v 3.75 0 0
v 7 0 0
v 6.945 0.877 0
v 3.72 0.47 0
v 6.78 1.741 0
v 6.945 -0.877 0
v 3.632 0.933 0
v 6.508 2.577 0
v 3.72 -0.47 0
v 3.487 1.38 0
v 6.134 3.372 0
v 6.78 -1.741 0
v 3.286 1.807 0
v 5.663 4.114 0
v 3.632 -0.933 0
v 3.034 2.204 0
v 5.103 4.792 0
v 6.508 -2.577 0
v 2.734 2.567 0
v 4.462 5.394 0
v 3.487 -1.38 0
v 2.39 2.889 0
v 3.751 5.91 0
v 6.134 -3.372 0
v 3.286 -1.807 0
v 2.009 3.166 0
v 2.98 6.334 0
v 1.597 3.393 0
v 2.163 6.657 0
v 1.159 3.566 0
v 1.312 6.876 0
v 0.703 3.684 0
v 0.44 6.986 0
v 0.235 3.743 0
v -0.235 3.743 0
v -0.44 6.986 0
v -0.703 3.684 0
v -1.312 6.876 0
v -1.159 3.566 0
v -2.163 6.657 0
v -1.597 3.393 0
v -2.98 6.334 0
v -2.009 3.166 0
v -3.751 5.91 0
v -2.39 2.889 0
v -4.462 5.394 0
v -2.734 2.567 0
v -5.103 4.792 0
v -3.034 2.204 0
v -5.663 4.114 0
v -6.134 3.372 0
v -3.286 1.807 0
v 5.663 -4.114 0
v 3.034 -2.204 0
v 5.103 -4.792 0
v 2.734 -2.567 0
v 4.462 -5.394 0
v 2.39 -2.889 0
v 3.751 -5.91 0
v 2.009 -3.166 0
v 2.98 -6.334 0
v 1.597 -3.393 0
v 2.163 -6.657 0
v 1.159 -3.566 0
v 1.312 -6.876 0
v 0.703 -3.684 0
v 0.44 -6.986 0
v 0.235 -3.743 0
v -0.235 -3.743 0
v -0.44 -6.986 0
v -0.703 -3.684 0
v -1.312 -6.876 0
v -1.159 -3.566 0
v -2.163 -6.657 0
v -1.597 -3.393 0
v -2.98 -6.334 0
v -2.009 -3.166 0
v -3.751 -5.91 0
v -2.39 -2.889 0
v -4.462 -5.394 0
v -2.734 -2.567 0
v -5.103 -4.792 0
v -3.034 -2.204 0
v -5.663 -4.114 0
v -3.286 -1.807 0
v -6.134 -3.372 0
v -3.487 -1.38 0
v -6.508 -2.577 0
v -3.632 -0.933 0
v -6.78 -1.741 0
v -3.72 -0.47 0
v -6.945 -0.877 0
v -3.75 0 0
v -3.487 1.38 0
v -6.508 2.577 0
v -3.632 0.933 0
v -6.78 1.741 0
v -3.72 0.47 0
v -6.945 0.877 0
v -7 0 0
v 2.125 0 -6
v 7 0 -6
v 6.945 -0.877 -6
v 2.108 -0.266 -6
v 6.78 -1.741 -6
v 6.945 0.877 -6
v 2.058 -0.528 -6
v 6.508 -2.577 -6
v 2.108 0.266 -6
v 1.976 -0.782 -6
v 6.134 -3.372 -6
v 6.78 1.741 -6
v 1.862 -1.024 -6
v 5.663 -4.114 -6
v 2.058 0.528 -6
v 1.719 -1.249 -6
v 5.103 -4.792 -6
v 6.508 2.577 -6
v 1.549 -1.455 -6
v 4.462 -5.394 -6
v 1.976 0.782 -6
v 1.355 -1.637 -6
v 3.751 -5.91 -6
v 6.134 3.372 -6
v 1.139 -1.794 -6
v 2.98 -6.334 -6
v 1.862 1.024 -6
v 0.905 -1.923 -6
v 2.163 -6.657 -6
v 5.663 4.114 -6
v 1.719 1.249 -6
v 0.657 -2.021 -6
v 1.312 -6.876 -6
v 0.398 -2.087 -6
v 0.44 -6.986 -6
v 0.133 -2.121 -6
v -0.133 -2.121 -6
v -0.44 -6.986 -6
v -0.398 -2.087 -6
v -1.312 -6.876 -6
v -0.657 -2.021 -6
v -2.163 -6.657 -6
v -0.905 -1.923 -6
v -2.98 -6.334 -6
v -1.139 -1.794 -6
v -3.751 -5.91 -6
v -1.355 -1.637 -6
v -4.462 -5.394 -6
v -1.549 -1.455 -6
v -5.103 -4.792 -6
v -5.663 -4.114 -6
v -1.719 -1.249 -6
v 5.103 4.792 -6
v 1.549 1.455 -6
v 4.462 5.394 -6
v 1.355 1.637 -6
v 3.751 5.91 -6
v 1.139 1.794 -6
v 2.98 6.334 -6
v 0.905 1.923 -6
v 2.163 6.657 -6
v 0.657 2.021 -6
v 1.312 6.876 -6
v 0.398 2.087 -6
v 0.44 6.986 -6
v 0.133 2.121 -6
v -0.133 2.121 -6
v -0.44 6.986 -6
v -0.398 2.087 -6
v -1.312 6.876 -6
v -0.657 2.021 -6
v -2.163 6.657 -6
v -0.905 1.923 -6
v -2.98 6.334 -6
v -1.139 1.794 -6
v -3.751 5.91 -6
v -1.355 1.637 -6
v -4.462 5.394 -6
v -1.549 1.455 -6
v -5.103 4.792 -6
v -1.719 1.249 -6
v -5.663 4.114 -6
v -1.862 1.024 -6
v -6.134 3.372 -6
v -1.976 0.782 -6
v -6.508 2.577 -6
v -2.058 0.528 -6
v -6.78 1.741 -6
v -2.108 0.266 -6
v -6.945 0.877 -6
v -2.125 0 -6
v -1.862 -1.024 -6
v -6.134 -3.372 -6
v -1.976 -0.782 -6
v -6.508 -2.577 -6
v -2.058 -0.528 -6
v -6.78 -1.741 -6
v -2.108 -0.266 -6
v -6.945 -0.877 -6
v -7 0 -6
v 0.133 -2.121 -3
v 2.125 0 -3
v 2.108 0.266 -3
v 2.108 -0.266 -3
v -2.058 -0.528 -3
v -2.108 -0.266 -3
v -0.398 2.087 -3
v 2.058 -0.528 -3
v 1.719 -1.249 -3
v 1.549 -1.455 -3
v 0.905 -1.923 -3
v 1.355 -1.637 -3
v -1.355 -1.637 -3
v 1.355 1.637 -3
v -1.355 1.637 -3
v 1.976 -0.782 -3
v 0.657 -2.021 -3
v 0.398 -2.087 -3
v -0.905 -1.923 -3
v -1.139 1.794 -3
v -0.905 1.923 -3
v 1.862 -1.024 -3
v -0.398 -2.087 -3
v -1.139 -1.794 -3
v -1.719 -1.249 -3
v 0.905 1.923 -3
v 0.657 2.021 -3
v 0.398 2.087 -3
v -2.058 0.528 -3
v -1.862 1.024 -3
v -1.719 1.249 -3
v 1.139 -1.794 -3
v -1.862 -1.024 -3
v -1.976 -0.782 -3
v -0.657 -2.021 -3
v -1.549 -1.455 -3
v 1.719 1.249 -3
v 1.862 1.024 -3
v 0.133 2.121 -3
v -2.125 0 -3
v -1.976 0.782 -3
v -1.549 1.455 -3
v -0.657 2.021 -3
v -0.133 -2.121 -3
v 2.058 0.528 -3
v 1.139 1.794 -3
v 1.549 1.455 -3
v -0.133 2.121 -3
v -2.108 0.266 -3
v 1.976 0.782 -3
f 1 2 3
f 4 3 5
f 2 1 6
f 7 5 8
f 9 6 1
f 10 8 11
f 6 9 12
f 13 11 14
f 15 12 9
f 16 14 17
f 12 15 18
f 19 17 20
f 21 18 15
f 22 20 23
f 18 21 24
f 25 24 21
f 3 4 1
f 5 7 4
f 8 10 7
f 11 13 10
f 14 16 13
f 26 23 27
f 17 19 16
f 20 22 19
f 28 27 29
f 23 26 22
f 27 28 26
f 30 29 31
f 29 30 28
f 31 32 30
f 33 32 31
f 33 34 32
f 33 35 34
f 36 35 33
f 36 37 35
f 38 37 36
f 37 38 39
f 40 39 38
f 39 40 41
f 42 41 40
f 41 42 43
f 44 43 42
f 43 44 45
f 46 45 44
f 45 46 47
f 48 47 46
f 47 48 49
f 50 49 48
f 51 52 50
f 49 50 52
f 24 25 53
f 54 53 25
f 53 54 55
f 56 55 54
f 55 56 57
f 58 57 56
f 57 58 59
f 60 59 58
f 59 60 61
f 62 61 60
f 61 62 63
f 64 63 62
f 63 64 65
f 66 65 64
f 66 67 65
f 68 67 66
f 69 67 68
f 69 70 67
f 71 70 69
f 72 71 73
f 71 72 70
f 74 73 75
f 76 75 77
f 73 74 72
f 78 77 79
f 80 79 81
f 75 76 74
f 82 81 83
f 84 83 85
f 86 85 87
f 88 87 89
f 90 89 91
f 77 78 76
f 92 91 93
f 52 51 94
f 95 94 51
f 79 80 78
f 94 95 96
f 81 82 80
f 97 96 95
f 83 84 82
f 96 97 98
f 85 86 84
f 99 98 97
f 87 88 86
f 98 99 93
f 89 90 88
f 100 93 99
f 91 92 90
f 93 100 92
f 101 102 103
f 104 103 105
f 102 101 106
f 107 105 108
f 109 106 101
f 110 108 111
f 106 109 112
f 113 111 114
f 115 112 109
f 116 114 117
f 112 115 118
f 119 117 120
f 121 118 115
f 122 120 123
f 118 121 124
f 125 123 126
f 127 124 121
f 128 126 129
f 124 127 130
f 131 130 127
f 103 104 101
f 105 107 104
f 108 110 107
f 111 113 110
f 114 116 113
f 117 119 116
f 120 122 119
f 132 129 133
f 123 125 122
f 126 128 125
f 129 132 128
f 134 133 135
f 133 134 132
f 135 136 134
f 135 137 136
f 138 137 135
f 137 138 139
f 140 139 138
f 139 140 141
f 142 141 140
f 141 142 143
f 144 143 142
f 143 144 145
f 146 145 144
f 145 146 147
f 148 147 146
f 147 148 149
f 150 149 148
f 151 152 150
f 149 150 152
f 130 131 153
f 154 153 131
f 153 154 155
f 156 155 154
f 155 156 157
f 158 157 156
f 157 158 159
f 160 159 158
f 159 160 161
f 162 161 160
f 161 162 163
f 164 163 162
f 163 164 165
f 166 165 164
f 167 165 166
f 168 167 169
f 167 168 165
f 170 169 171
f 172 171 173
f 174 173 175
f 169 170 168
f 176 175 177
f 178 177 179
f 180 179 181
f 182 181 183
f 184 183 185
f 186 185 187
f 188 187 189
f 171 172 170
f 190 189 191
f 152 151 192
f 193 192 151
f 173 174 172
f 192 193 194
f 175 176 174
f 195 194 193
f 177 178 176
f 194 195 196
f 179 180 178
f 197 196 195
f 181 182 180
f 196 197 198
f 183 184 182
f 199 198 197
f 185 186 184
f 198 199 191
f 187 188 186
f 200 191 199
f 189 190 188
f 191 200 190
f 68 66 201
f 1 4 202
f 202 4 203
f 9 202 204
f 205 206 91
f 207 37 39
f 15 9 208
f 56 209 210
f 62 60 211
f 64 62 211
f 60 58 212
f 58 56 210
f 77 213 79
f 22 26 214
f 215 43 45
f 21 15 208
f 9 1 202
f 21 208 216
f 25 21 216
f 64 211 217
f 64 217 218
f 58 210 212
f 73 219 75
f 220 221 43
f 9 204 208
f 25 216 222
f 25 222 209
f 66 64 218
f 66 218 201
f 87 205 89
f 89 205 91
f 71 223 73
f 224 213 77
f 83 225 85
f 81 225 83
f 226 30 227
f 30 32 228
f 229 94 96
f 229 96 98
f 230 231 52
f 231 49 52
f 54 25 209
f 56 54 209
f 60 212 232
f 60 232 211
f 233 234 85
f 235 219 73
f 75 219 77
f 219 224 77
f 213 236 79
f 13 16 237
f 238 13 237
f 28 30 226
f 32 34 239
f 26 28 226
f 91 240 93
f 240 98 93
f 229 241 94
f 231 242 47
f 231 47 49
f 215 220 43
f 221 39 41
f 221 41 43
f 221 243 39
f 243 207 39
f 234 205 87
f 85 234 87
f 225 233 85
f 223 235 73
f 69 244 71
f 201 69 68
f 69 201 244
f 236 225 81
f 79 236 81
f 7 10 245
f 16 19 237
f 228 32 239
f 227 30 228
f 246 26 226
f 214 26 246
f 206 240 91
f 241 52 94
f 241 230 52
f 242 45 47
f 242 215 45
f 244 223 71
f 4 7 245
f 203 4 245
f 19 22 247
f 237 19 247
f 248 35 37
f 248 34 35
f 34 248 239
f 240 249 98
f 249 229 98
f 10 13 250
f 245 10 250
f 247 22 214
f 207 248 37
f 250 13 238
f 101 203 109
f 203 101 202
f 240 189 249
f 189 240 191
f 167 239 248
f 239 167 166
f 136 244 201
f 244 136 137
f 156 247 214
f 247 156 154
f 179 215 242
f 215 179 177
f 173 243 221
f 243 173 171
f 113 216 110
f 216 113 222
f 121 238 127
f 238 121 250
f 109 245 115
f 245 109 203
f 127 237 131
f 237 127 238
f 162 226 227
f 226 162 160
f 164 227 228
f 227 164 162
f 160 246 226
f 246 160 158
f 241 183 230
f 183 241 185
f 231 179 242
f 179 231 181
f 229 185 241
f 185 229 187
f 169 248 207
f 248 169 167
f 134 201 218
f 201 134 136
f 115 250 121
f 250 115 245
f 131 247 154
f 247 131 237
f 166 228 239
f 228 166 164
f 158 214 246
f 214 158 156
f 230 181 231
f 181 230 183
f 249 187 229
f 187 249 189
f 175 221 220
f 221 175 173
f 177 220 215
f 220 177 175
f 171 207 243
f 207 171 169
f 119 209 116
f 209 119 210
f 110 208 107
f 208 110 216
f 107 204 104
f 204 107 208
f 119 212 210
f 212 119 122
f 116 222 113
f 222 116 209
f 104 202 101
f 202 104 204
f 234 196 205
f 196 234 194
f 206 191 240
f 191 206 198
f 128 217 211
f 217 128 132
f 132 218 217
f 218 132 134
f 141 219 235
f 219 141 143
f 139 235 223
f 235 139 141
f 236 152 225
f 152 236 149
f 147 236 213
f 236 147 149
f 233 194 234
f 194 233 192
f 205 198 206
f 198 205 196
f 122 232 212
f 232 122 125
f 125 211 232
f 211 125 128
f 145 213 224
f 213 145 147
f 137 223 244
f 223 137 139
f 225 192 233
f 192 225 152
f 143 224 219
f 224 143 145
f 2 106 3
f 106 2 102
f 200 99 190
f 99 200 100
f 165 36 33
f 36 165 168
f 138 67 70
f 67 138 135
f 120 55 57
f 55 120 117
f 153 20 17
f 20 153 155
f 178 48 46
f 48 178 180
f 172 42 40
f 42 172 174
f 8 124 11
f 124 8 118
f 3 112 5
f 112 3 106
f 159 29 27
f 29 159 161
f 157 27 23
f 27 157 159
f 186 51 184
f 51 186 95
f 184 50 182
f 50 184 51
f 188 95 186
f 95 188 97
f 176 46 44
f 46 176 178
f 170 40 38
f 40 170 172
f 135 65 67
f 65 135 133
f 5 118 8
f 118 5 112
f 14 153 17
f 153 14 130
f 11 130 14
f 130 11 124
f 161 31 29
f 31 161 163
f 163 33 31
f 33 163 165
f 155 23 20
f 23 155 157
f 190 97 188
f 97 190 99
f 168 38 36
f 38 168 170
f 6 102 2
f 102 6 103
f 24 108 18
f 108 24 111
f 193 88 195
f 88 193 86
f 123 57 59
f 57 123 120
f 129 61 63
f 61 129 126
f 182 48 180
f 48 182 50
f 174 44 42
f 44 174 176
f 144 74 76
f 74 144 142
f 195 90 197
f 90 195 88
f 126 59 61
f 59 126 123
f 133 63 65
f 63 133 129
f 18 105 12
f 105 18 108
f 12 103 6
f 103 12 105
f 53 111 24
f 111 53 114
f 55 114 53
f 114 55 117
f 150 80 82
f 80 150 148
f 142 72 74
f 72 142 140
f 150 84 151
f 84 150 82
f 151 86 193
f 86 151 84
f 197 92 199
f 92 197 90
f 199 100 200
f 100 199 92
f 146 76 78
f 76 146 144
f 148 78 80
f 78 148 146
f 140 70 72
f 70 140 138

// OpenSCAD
$fn = 50;


difference() {
	union() {
		translate(v = [0, 0, -6.0000000000]) {
			cylinder(h = 6, r = 7.0000000000);
		}
	}
	union() {
		translate(v = [0, 0, 0]) {
			rotate(a = [0, 0, 0]) {
				difference() {
					union() {
						#translate(v = [0, 0, -6.0000000000]) {
							cylinder(h = 6, r = 2.0000000000);
						}
						#translate(v = [0, 0, -3]) {
							cylinder(h = 3, r = 7.0000000000, r1 = 2.1250000000, r2 = 3.7500000000);
						}
						#translate(v = [0, 0, -6.0000000000]) {
							cylinder(h = 6, r = 2.1250000000);
						}
						#translate(v = [0, 0, -6.0000000000]) {
							cylinder(h = 6, r = 2.0000000000);
						}
					}
					union();
				}
			}
		}
	}
}
